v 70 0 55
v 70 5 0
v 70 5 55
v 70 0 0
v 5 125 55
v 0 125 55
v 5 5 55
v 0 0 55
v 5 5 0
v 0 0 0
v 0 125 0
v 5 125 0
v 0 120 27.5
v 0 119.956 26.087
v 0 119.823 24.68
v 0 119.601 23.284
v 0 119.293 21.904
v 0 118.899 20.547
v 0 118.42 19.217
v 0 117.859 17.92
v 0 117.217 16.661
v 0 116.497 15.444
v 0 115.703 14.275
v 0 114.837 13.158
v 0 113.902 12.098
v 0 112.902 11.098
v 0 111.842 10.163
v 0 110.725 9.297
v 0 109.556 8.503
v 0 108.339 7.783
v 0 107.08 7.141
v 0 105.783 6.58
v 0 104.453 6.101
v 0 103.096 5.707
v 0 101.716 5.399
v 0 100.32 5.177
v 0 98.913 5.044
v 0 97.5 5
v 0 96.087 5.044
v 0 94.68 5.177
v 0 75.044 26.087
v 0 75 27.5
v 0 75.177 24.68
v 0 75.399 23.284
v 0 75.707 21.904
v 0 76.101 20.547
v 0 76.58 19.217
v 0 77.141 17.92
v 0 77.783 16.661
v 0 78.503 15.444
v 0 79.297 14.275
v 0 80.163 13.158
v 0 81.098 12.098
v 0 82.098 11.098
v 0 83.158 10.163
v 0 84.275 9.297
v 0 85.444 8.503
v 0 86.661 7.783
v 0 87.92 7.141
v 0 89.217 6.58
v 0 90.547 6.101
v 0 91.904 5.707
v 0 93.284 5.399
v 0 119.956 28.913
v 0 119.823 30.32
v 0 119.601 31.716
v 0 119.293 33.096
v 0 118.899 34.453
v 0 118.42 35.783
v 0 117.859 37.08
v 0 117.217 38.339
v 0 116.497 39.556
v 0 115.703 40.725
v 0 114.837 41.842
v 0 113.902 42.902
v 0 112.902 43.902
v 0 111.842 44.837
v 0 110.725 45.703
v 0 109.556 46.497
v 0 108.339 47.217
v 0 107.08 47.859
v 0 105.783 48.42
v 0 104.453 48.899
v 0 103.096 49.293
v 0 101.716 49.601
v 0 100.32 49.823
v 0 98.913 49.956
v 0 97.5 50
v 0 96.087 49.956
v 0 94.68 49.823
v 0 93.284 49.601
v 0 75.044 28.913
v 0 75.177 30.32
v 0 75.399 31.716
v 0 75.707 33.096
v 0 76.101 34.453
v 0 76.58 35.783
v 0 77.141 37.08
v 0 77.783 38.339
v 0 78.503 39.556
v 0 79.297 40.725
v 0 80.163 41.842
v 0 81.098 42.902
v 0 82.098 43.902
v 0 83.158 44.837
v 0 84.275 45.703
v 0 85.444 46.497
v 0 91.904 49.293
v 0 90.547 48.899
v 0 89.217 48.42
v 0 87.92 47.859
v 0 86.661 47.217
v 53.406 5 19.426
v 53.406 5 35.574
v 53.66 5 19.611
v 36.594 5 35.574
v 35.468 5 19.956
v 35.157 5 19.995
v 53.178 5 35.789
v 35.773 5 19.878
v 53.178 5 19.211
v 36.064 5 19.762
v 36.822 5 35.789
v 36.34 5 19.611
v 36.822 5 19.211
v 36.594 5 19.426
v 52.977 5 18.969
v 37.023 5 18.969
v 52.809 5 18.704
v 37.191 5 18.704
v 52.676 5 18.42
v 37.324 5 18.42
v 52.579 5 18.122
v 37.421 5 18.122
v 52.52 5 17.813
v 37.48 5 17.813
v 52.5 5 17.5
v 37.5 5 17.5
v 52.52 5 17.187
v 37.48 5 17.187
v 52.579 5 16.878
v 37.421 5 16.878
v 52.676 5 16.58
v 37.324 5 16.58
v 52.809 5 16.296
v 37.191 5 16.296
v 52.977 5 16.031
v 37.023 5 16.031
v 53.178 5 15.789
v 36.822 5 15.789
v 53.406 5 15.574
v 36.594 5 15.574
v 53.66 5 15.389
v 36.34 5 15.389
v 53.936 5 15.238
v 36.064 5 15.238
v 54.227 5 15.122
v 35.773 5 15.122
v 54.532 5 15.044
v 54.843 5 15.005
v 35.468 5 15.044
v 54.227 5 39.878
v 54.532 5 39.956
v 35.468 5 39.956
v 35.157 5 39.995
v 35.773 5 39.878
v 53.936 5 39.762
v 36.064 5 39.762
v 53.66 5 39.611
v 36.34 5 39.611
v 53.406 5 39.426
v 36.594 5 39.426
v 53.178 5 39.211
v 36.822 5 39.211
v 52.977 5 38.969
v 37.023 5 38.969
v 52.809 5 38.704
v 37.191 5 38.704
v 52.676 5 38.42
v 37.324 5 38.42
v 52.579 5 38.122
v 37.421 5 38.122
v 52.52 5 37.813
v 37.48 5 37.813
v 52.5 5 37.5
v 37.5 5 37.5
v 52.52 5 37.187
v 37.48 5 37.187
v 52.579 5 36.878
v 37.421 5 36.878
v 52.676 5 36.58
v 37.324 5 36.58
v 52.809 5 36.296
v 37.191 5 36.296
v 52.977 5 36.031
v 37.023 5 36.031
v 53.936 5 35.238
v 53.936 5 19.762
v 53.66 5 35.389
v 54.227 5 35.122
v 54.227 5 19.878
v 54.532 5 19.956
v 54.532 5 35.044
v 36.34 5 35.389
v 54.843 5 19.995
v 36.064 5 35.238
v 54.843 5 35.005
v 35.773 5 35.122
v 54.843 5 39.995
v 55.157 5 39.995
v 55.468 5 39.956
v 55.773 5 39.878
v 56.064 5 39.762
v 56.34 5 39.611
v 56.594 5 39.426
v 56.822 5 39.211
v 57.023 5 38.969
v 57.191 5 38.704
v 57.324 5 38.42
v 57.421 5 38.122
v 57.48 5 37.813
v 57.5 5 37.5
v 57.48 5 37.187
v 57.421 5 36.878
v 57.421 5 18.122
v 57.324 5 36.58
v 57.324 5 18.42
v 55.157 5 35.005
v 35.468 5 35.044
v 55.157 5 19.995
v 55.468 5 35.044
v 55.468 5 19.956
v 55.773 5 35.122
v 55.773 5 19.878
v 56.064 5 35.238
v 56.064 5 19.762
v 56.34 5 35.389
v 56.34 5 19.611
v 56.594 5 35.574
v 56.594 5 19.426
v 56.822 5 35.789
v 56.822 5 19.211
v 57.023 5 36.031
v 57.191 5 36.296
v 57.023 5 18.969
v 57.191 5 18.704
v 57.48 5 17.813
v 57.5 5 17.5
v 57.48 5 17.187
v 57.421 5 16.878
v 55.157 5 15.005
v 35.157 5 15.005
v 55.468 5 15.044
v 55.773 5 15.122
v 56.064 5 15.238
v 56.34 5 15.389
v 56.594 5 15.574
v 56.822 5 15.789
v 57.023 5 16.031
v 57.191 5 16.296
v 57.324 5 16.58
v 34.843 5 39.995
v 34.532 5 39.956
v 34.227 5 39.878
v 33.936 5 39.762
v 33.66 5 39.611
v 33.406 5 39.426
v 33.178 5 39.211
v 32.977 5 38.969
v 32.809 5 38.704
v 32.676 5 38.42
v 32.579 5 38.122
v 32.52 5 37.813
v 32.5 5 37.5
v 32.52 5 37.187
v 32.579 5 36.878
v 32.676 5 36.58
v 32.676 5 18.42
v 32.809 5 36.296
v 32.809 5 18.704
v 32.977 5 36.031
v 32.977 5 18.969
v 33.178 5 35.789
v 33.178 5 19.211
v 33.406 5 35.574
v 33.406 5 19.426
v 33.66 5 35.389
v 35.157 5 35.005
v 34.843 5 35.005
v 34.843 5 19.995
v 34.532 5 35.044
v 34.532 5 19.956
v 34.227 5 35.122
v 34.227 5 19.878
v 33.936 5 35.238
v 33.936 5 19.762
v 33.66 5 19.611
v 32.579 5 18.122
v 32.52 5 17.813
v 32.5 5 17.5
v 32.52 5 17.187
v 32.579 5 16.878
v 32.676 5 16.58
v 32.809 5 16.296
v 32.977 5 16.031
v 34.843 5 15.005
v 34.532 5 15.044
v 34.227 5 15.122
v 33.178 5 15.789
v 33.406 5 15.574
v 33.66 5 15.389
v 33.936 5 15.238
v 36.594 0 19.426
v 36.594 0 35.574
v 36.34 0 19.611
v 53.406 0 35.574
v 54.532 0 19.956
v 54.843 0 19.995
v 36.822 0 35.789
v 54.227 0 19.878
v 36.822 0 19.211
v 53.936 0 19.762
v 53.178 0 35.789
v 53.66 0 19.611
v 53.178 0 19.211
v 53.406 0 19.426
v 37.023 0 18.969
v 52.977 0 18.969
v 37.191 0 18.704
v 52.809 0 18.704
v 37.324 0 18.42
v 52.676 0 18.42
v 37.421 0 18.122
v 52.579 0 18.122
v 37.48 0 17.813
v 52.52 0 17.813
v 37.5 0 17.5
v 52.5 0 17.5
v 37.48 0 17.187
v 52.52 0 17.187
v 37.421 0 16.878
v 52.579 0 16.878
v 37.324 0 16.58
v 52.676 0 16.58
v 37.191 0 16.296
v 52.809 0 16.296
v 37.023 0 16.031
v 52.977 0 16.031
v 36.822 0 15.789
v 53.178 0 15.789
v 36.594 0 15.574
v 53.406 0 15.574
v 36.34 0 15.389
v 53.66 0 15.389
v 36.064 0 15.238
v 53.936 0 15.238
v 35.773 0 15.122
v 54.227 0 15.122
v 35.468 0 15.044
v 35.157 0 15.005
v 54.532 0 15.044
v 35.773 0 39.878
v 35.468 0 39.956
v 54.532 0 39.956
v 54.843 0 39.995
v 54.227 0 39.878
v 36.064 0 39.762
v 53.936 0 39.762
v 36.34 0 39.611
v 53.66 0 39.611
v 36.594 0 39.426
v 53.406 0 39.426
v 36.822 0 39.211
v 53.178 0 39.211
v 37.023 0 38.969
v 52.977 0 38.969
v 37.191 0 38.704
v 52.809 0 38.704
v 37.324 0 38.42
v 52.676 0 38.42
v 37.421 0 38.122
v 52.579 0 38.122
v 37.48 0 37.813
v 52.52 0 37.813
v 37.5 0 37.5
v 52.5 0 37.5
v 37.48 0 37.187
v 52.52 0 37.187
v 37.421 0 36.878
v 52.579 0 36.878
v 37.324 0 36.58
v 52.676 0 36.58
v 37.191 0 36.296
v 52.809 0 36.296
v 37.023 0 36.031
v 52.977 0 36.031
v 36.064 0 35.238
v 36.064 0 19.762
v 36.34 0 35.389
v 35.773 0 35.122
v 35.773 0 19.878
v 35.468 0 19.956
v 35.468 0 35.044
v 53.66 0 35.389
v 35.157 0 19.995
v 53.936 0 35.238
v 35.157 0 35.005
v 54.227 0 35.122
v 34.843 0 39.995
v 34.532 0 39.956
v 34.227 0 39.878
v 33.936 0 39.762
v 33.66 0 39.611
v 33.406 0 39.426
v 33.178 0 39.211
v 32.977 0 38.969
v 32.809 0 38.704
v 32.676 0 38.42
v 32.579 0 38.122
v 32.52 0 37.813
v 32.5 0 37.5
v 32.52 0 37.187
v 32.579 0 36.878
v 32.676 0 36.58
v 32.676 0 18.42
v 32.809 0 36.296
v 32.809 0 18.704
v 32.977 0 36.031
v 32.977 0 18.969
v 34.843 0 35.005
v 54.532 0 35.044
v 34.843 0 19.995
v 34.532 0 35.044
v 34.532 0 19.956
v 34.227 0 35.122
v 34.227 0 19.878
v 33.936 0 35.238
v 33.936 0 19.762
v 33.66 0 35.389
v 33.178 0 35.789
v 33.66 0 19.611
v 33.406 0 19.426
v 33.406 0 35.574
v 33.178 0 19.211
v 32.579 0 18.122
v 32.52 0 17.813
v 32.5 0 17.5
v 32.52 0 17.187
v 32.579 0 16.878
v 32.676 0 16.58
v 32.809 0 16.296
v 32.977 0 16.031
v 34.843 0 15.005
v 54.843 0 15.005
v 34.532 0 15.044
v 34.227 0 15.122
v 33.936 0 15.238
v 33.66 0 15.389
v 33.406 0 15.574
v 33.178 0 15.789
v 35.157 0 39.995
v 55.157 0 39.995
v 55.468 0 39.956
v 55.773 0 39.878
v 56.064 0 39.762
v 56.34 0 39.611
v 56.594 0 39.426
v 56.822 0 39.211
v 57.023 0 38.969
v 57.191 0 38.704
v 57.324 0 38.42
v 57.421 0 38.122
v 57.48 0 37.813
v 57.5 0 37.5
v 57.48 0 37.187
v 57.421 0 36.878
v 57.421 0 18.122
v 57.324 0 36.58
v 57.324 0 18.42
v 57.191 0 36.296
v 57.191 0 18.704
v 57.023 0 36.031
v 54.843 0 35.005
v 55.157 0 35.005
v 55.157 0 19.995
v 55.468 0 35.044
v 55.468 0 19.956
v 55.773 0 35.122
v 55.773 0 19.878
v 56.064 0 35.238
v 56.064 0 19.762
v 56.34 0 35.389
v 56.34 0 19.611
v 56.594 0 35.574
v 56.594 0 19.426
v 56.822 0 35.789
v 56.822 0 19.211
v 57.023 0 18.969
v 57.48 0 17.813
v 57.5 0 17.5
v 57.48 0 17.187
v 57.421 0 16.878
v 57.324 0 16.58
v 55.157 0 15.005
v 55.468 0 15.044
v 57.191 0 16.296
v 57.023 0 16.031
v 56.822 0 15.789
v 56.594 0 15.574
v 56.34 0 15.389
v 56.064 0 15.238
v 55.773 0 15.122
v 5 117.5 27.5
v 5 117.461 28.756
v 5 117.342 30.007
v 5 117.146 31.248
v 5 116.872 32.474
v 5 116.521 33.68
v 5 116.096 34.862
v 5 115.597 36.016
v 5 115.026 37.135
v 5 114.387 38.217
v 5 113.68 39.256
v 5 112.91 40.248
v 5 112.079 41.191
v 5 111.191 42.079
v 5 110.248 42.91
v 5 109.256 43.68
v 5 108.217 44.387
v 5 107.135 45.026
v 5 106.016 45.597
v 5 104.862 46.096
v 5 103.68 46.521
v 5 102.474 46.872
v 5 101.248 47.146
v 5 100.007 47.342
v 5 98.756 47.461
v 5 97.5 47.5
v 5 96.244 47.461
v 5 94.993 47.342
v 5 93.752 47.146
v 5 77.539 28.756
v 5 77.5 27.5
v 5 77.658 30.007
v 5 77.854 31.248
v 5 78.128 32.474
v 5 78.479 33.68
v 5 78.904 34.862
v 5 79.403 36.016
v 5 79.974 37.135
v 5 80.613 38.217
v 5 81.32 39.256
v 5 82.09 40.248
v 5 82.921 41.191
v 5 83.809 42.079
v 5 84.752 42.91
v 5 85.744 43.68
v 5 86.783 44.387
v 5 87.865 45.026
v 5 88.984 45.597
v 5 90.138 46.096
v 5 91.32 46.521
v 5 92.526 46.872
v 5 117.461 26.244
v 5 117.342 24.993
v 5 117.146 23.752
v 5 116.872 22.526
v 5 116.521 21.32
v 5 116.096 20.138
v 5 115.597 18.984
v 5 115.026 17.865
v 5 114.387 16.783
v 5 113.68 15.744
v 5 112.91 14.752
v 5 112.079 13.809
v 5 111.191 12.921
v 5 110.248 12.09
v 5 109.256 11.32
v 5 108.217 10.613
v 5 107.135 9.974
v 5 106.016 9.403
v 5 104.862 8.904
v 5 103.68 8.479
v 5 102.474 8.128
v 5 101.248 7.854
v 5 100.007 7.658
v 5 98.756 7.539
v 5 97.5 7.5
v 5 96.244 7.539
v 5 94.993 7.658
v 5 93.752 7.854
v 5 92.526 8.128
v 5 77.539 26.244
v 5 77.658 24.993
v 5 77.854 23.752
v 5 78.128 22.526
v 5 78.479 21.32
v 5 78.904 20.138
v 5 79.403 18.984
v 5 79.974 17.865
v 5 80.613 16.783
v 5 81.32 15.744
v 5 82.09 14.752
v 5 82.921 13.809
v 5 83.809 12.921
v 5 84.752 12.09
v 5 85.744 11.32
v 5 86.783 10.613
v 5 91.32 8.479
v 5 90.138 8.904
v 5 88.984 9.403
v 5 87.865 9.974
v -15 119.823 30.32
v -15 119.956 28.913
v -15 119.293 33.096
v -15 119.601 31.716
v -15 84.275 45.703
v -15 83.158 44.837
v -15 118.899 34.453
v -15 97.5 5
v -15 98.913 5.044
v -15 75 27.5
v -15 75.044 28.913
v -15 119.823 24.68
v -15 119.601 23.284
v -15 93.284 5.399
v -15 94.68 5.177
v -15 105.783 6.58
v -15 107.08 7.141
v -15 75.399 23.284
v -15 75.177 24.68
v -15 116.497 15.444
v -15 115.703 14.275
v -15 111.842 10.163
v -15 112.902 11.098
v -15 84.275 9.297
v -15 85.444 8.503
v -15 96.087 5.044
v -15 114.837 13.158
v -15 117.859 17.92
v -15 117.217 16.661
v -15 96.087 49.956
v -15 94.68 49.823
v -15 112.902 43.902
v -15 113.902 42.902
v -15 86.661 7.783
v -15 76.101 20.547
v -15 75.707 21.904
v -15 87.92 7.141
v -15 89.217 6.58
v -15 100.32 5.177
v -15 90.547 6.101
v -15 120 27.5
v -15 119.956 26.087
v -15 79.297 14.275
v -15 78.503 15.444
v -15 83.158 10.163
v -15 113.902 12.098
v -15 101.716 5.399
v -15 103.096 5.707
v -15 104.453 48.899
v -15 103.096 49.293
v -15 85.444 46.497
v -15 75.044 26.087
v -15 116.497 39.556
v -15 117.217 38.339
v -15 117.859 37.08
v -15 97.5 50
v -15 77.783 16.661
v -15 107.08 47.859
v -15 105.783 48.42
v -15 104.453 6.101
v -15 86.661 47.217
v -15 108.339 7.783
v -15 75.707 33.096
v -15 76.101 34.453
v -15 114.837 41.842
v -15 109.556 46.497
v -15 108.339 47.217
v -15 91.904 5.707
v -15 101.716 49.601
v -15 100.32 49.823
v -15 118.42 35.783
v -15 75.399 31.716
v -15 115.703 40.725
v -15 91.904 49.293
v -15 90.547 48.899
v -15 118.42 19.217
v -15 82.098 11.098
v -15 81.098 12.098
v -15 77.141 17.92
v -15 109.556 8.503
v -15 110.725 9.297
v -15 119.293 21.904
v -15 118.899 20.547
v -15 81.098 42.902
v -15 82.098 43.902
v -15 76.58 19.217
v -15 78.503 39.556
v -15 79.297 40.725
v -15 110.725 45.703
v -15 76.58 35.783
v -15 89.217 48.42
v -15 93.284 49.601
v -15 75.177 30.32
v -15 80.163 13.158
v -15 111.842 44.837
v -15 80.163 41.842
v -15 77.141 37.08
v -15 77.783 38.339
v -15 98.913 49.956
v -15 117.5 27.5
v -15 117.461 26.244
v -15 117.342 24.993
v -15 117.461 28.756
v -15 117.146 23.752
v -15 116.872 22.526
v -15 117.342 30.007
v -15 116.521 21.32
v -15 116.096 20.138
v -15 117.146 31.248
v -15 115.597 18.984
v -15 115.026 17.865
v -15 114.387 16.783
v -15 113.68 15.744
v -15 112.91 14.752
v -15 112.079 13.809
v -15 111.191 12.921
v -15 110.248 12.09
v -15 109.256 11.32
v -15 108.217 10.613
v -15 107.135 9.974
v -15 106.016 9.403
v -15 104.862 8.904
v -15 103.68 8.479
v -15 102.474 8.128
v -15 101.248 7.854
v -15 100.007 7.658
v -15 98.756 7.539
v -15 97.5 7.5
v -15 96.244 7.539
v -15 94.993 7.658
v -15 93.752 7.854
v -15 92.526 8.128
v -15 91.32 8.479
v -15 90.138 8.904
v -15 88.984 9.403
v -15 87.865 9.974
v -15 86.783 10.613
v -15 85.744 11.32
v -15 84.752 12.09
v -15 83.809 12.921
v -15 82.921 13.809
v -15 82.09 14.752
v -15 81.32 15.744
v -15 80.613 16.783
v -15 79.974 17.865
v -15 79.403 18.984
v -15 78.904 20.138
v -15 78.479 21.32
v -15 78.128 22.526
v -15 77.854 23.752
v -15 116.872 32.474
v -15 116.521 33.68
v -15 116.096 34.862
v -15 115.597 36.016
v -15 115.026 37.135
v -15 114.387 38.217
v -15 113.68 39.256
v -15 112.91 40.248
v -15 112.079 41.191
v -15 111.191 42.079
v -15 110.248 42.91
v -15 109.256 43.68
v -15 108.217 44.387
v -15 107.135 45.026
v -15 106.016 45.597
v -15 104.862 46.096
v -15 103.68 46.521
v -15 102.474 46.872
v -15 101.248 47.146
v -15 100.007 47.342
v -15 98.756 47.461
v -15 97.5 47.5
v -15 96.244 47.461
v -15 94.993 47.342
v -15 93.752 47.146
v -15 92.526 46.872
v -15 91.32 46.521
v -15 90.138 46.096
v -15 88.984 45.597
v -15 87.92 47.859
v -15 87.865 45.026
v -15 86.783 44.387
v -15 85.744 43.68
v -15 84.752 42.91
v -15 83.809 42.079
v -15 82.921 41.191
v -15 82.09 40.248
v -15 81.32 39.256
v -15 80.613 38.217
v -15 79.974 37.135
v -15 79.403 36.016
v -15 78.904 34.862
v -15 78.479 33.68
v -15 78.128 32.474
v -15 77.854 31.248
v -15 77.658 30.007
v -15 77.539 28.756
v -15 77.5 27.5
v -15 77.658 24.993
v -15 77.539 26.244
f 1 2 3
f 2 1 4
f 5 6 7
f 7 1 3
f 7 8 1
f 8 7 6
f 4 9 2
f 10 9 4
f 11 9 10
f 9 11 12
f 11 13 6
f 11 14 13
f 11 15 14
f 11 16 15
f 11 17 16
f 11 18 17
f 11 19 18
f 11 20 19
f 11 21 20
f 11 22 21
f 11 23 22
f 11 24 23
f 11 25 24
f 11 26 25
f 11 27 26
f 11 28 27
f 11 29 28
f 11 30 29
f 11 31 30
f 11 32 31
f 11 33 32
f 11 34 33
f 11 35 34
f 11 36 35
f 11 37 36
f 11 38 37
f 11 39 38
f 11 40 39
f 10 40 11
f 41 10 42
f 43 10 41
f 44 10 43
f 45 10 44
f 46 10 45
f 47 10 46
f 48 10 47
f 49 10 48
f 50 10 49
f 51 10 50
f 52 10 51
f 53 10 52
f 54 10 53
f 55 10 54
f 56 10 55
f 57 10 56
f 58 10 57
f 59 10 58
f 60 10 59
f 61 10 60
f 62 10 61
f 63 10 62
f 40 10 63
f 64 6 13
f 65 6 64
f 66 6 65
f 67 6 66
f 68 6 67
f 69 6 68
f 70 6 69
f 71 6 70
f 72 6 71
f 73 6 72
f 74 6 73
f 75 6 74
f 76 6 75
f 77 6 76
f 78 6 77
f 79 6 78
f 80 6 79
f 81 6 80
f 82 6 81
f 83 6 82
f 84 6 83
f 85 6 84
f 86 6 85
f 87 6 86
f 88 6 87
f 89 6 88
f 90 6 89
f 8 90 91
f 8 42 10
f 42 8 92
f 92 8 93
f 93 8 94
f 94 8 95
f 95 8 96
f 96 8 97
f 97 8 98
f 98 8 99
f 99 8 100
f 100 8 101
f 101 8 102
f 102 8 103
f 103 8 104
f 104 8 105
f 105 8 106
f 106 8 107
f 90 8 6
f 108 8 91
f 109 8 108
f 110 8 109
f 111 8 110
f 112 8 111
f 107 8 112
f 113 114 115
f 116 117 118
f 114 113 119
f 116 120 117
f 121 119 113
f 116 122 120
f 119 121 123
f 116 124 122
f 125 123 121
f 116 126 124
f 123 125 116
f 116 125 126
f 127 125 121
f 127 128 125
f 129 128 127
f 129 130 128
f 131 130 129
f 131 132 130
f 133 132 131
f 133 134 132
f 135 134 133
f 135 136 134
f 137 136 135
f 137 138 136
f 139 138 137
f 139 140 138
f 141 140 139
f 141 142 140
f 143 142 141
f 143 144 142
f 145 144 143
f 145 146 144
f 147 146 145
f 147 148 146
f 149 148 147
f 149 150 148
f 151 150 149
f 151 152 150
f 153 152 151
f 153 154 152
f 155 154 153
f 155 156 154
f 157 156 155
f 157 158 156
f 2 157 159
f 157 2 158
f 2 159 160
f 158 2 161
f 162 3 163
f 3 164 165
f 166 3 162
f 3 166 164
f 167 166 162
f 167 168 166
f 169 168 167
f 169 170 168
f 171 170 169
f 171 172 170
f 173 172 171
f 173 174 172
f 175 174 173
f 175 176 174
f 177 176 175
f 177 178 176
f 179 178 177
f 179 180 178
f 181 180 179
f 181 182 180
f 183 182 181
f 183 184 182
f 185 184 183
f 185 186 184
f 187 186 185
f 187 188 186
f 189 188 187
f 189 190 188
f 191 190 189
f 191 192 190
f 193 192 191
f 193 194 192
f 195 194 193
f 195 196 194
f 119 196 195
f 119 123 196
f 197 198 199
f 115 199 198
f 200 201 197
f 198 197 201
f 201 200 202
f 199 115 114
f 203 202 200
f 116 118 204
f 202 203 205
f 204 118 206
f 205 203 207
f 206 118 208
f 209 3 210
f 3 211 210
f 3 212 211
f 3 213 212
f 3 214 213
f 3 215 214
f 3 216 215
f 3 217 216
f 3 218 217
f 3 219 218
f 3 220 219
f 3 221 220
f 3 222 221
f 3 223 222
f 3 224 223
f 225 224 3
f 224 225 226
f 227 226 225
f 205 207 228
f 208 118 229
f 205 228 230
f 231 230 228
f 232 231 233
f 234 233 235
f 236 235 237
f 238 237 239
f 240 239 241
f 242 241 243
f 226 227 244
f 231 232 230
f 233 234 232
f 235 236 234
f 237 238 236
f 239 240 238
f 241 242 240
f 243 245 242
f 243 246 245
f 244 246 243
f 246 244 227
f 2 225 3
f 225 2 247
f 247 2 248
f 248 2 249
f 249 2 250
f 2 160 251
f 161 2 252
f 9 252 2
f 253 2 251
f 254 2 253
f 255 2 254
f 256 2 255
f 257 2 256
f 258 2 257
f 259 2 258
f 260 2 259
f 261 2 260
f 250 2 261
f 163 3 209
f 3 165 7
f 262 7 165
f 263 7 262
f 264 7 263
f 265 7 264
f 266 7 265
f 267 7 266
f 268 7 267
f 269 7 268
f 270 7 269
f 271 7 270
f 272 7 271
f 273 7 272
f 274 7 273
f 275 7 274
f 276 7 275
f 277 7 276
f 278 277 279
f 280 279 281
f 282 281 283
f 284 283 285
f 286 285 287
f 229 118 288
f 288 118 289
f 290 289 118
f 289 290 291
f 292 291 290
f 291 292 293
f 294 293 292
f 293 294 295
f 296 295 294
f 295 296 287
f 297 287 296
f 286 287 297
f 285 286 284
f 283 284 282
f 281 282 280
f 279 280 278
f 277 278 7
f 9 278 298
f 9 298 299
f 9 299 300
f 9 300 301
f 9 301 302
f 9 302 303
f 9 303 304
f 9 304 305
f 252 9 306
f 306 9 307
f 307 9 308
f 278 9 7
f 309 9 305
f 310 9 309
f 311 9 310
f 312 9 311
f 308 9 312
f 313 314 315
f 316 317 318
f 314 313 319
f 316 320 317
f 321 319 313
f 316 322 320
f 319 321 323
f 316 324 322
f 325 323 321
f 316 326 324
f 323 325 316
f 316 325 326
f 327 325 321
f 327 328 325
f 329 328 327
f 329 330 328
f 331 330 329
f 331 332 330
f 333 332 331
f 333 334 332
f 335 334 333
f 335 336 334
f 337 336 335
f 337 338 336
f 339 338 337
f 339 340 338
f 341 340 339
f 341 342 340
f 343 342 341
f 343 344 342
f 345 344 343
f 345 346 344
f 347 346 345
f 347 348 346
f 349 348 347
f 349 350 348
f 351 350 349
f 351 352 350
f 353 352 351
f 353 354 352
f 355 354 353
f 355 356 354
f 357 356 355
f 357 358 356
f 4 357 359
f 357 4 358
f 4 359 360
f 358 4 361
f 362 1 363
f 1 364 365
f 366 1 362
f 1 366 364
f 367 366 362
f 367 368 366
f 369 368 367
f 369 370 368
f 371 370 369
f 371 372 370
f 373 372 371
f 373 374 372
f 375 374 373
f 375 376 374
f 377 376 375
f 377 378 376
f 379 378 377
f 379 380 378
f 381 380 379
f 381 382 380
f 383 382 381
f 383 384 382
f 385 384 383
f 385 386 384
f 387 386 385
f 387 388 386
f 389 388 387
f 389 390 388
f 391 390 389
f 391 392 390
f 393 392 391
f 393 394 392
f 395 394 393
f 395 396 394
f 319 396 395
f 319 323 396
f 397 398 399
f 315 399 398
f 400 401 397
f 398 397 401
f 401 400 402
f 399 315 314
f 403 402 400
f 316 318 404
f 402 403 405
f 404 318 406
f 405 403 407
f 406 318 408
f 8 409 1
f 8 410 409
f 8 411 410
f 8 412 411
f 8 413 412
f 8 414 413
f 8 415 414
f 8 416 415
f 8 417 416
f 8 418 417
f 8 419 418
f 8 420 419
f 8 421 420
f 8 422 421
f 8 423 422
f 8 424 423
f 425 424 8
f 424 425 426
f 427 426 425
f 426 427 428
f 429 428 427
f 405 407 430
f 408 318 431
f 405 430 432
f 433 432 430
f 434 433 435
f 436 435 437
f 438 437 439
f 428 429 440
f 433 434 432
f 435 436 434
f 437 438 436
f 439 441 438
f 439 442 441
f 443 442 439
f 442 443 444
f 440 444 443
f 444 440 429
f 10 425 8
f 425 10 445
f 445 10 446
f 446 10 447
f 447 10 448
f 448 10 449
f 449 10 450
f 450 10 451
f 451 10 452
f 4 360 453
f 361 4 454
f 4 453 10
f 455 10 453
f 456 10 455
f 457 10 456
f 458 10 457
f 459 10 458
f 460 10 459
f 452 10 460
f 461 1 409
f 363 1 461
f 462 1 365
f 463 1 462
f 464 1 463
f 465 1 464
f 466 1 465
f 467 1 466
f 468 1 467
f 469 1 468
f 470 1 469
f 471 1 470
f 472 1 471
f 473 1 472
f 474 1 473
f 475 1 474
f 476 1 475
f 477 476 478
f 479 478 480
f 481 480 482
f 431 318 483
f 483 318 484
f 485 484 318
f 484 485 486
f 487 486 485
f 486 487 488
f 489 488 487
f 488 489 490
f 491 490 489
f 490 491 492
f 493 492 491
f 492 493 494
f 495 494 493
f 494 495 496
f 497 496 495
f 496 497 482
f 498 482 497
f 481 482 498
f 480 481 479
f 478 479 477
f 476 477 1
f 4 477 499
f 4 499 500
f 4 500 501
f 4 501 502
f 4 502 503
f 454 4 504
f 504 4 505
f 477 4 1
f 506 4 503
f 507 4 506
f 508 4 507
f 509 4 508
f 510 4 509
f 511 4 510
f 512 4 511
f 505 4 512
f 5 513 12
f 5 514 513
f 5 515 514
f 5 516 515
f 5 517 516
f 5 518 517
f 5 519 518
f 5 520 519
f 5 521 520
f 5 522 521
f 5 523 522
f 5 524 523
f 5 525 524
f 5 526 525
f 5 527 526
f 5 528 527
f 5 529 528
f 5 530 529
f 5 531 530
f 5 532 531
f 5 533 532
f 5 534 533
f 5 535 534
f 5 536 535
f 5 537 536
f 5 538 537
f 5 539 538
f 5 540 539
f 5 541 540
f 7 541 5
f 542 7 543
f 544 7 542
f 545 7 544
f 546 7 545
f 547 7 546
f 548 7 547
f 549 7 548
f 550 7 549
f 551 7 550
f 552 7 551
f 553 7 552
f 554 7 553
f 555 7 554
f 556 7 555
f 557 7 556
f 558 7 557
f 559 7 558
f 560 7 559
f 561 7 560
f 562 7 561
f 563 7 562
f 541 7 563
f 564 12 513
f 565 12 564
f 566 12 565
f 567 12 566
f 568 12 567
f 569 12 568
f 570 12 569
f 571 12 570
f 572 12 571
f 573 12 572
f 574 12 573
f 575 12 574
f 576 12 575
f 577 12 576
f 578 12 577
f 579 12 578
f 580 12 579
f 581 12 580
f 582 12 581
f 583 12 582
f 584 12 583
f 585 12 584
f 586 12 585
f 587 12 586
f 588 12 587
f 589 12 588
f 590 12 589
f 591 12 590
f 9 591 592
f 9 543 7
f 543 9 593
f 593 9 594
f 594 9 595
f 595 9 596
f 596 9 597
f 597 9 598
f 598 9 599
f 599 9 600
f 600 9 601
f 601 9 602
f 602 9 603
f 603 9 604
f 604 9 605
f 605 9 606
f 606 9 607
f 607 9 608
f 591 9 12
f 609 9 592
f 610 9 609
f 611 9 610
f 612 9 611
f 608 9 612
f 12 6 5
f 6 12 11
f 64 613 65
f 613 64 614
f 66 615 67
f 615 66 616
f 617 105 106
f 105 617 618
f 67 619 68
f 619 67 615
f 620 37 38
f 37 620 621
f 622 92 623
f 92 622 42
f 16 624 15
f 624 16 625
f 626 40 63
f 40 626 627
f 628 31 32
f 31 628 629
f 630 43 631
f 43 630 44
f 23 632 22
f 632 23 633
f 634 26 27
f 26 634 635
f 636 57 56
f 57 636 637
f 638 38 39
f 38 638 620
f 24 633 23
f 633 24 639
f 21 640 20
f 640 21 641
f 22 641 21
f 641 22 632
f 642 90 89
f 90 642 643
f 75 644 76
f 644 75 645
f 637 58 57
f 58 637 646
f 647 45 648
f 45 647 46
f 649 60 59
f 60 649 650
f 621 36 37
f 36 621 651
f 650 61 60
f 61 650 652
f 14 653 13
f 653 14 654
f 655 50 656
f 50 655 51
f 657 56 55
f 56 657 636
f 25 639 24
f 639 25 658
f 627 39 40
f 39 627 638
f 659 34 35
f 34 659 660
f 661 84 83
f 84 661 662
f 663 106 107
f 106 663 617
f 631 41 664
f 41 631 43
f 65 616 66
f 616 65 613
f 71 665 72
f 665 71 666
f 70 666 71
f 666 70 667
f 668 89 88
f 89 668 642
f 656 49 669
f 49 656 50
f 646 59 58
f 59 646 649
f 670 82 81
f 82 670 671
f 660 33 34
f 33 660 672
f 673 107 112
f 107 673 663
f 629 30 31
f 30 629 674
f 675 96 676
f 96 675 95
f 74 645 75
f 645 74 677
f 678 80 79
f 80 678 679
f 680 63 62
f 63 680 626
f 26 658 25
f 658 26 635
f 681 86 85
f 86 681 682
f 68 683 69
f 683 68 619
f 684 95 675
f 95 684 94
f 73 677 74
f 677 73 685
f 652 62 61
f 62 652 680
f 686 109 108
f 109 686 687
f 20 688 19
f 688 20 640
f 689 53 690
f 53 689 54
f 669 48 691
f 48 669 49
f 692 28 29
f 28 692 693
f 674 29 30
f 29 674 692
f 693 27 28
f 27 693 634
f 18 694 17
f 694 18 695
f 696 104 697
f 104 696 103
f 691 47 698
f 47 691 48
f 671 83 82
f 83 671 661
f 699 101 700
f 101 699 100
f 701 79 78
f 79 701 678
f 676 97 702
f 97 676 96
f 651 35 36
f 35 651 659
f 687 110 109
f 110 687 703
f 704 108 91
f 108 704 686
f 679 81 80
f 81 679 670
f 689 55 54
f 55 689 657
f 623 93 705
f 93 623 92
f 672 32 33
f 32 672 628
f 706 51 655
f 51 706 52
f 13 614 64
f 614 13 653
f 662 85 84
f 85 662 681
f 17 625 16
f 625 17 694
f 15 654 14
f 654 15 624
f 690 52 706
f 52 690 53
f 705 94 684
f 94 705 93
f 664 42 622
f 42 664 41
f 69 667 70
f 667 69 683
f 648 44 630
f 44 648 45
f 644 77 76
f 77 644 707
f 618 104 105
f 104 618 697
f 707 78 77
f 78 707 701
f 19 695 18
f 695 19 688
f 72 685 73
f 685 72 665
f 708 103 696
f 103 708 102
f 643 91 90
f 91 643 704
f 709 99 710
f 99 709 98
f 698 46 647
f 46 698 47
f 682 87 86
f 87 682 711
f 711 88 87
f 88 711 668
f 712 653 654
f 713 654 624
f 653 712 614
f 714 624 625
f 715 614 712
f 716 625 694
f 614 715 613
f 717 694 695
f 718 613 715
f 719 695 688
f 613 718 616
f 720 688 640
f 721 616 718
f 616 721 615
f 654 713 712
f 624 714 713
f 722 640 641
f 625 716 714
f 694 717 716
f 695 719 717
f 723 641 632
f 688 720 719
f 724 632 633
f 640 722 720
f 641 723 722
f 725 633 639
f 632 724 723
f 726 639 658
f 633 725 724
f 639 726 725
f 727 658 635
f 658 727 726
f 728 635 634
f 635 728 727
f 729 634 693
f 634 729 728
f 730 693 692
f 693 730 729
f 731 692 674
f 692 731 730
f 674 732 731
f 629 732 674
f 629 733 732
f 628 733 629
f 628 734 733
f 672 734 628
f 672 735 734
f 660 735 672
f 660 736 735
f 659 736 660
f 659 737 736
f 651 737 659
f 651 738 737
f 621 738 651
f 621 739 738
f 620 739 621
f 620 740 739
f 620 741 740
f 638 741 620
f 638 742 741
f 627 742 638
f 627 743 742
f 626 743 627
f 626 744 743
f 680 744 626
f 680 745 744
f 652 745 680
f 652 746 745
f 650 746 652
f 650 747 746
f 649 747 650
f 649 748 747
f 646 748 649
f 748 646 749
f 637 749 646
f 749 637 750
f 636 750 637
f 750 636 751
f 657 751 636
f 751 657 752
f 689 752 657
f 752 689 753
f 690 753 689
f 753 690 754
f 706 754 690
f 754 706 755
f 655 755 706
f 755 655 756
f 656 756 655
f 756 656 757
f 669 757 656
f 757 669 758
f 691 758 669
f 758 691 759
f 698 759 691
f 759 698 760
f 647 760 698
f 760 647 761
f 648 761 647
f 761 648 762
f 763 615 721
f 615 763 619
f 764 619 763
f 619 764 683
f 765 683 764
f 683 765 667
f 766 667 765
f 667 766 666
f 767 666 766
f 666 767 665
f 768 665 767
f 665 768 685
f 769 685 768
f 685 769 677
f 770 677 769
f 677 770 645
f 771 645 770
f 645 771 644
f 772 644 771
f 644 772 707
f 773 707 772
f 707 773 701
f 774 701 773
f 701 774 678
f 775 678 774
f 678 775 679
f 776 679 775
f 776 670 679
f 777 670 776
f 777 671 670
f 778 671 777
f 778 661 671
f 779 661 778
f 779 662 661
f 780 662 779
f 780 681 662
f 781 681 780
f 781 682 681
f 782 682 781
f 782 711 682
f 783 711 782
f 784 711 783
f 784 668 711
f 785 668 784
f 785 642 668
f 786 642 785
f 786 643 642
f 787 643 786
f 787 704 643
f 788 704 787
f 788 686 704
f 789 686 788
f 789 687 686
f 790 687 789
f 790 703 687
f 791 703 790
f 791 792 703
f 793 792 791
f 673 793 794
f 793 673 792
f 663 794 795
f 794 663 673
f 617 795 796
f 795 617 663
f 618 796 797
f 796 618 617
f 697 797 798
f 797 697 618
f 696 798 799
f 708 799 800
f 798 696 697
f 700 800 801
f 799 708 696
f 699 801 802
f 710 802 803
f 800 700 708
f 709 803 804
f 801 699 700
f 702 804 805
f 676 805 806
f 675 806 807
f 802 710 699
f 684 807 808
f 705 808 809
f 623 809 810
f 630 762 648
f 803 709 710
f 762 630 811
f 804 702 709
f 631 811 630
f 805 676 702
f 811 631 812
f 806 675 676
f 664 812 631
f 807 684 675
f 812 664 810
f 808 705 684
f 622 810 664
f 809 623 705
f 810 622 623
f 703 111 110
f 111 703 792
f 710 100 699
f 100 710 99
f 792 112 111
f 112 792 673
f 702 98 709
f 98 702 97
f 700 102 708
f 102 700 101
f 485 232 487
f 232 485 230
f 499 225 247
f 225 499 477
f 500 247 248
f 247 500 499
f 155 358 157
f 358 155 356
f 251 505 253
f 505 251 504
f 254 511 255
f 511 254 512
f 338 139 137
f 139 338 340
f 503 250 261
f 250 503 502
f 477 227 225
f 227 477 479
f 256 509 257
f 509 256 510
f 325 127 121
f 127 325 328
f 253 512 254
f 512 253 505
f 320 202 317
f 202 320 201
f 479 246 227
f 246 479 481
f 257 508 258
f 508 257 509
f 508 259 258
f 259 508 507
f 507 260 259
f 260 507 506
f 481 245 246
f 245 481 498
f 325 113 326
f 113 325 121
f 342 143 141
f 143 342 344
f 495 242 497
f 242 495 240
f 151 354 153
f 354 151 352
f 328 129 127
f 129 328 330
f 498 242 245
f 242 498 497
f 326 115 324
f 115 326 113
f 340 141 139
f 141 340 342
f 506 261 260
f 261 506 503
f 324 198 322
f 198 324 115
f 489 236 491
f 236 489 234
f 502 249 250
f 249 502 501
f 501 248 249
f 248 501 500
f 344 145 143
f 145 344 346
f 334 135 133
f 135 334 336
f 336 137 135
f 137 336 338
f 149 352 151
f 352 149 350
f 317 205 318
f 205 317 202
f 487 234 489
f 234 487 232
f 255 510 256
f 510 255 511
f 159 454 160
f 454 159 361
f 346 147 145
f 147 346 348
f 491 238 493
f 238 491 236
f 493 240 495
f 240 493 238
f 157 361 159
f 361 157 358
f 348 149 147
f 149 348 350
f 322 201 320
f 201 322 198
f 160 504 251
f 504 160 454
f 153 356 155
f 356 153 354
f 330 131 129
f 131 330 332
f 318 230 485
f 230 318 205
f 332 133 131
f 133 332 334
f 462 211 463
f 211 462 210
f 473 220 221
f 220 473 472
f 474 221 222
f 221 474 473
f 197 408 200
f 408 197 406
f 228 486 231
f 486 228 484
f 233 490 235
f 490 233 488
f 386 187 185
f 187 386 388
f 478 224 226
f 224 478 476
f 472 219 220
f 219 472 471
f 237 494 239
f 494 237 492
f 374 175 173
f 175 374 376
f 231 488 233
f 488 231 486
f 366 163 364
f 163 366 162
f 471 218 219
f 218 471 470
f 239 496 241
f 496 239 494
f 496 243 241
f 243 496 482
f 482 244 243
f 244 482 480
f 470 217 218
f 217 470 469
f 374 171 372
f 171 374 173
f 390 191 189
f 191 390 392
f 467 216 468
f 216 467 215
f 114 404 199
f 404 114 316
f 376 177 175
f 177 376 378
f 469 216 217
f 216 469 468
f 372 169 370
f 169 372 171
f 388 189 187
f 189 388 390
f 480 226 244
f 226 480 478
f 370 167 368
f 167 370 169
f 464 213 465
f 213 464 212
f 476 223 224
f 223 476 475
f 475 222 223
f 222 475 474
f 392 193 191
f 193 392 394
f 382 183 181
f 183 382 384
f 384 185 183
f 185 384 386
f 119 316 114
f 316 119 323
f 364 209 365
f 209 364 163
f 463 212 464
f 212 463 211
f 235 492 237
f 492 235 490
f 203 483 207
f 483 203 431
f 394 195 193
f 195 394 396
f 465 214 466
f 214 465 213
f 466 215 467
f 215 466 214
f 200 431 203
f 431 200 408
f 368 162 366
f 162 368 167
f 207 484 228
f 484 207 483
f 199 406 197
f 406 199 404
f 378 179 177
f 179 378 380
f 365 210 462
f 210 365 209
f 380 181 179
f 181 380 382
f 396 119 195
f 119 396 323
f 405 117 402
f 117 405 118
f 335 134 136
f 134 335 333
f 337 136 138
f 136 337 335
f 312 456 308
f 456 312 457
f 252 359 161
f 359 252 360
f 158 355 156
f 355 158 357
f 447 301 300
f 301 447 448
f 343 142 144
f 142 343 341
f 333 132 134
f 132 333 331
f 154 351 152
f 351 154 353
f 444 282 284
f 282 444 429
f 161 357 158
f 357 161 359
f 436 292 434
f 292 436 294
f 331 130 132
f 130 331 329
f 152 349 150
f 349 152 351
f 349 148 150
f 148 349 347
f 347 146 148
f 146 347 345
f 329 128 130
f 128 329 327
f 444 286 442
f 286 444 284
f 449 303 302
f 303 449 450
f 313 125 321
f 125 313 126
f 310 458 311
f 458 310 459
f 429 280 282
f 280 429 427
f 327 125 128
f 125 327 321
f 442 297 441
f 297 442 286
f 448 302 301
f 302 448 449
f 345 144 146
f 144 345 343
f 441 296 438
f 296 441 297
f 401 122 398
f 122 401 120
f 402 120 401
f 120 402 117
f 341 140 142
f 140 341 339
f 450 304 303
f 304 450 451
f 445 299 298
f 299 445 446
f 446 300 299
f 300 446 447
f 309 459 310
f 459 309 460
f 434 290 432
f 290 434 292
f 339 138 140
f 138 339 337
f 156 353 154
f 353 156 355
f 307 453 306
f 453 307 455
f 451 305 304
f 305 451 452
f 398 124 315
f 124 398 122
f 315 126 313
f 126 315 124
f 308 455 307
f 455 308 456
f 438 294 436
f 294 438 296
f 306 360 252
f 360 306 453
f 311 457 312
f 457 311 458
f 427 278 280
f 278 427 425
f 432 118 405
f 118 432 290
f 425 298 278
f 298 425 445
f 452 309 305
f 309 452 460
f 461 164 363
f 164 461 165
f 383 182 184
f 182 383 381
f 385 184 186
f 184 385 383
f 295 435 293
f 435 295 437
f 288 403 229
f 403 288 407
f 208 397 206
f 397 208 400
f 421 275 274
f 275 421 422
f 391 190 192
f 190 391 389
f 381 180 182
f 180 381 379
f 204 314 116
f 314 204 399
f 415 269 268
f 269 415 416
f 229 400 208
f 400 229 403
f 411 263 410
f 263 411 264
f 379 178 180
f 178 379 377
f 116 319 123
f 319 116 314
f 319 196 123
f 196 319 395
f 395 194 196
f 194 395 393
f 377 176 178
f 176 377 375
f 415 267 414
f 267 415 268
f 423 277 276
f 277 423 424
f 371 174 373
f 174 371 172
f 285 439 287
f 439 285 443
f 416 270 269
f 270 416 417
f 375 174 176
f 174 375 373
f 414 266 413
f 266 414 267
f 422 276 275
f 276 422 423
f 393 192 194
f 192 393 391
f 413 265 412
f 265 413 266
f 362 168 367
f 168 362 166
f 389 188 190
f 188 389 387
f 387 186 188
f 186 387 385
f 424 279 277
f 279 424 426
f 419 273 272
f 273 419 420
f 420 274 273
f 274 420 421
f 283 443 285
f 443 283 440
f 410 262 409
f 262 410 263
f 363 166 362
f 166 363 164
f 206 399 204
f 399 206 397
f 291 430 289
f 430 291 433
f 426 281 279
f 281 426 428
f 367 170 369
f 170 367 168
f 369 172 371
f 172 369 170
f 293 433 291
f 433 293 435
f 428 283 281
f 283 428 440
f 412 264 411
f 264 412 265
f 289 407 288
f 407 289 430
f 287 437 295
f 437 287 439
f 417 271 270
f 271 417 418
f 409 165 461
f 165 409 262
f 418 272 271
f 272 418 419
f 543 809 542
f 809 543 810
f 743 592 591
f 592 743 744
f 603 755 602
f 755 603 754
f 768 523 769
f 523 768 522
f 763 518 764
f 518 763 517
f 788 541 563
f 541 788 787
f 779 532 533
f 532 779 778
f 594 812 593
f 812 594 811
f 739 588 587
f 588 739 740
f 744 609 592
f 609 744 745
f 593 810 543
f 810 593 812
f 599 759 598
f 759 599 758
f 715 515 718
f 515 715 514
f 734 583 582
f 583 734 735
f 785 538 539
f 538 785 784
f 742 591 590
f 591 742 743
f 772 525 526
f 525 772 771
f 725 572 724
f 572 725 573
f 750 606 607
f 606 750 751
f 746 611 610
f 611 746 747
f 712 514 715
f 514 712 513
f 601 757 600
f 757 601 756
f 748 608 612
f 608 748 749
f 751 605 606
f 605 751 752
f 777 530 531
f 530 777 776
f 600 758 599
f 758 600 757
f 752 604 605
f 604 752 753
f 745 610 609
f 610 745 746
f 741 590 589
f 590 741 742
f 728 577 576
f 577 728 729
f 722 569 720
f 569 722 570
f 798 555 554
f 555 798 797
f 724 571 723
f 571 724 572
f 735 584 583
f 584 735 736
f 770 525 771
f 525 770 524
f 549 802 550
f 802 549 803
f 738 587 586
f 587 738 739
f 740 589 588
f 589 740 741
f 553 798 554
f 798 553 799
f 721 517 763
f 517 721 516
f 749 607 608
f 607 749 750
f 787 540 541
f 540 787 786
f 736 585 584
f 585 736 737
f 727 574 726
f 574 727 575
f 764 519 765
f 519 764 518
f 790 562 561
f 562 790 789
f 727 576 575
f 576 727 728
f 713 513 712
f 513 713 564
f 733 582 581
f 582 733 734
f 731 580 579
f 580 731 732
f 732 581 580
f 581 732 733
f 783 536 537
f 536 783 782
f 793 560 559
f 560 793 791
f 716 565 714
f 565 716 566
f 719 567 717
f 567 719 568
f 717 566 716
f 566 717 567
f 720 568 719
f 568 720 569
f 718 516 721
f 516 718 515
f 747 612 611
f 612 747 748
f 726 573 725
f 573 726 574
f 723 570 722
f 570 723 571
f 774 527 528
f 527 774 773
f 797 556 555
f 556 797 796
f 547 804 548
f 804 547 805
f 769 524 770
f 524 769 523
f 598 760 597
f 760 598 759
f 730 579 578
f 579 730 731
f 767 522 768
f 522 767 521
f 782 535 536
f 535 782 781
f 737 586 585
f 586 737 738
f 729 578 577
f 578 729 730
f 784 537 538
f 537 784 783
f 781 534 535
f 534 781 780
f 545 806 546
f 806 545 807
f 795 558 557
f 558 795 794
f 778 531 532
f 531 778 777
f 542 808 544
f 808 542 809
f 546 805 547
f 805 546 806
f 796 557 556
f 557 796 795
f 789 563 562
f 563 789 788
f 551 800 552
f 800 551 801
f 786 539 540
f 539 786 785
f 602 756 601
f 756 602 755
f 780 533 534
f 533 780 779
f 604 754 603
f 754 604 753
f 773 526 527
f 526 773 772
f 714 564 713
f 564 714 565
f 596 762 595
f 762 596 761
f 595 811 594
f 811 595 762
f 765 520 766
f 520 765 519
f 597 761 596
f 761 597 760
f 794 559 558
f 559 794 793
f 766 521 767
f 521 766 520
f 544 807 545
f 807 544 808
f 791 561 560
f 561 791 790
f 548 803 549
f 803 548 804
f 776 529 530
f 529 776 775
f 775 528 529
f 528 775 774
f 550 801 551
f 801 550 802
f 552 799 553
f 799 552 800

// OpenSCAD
// L-shaped object with 5mm wall thickness, main circular hole, and screw holes in square pattern
// All dimensions in millimeters

// Wall thickness
thickness = 5;

// First side dimensions
length1 = 70;
width = 55;

// Second side dimensions
length2 = 125;

// Main hole diameter
hole_diameter = 40;

// Screw holes parameters
screw_diameter = 5;
screw_edge_distance = 15; // Distance from edges
screw_square_size = 20;   // Size of the square pattern (distance between holes)

// Calculate the minimum distance from edges for main hole
edge_distance = (min(width, length2) - hole_diameter) / 2;

// Calculate main hole position
hole_center_z = edge_distance + (hole_diameter/2);
hole_center_y = length2 - (edge_distance + (hole_diameter/2));

difference() {
    // Main L shape
    union() {
        // First side (150mm x 100mm)
        cube([length1, thickness, width]);

        // Second side (130mm x 100mm)
        cube([thickness, length2, width]);

        translate([- (thickness + 10), hole_center_y, hole_center_z])
            rotate([0, 90, 0])
            cylinder(h = thickness + 10, d = hole_diameter + 5, $fn=100);
    }

    // Main circular hole in second side
    translate([- (thickness + 10), hole_center_y, hole_center_z])
        rotate([0, 90, 0])
        cylinder(h = thickness + 20, d = hole_diameter, $fn=100);

    // Four screw holes in square pattern near far edge
    for (x = [0:1], z = [0:1]) {
        translate([
            length1 - screw_edge_distance - (x * screw_square_size), // X position (from far edge)
            0,                                                       // Y position
            width/2 - (screw_square_size/2) + (z * screw_square_size) // Z position
        ])
        rotate([90, 0, 0])
        cylinder(h = thickness + 6, d = screw_diameter, center = true, $fn=50);
    }
}
